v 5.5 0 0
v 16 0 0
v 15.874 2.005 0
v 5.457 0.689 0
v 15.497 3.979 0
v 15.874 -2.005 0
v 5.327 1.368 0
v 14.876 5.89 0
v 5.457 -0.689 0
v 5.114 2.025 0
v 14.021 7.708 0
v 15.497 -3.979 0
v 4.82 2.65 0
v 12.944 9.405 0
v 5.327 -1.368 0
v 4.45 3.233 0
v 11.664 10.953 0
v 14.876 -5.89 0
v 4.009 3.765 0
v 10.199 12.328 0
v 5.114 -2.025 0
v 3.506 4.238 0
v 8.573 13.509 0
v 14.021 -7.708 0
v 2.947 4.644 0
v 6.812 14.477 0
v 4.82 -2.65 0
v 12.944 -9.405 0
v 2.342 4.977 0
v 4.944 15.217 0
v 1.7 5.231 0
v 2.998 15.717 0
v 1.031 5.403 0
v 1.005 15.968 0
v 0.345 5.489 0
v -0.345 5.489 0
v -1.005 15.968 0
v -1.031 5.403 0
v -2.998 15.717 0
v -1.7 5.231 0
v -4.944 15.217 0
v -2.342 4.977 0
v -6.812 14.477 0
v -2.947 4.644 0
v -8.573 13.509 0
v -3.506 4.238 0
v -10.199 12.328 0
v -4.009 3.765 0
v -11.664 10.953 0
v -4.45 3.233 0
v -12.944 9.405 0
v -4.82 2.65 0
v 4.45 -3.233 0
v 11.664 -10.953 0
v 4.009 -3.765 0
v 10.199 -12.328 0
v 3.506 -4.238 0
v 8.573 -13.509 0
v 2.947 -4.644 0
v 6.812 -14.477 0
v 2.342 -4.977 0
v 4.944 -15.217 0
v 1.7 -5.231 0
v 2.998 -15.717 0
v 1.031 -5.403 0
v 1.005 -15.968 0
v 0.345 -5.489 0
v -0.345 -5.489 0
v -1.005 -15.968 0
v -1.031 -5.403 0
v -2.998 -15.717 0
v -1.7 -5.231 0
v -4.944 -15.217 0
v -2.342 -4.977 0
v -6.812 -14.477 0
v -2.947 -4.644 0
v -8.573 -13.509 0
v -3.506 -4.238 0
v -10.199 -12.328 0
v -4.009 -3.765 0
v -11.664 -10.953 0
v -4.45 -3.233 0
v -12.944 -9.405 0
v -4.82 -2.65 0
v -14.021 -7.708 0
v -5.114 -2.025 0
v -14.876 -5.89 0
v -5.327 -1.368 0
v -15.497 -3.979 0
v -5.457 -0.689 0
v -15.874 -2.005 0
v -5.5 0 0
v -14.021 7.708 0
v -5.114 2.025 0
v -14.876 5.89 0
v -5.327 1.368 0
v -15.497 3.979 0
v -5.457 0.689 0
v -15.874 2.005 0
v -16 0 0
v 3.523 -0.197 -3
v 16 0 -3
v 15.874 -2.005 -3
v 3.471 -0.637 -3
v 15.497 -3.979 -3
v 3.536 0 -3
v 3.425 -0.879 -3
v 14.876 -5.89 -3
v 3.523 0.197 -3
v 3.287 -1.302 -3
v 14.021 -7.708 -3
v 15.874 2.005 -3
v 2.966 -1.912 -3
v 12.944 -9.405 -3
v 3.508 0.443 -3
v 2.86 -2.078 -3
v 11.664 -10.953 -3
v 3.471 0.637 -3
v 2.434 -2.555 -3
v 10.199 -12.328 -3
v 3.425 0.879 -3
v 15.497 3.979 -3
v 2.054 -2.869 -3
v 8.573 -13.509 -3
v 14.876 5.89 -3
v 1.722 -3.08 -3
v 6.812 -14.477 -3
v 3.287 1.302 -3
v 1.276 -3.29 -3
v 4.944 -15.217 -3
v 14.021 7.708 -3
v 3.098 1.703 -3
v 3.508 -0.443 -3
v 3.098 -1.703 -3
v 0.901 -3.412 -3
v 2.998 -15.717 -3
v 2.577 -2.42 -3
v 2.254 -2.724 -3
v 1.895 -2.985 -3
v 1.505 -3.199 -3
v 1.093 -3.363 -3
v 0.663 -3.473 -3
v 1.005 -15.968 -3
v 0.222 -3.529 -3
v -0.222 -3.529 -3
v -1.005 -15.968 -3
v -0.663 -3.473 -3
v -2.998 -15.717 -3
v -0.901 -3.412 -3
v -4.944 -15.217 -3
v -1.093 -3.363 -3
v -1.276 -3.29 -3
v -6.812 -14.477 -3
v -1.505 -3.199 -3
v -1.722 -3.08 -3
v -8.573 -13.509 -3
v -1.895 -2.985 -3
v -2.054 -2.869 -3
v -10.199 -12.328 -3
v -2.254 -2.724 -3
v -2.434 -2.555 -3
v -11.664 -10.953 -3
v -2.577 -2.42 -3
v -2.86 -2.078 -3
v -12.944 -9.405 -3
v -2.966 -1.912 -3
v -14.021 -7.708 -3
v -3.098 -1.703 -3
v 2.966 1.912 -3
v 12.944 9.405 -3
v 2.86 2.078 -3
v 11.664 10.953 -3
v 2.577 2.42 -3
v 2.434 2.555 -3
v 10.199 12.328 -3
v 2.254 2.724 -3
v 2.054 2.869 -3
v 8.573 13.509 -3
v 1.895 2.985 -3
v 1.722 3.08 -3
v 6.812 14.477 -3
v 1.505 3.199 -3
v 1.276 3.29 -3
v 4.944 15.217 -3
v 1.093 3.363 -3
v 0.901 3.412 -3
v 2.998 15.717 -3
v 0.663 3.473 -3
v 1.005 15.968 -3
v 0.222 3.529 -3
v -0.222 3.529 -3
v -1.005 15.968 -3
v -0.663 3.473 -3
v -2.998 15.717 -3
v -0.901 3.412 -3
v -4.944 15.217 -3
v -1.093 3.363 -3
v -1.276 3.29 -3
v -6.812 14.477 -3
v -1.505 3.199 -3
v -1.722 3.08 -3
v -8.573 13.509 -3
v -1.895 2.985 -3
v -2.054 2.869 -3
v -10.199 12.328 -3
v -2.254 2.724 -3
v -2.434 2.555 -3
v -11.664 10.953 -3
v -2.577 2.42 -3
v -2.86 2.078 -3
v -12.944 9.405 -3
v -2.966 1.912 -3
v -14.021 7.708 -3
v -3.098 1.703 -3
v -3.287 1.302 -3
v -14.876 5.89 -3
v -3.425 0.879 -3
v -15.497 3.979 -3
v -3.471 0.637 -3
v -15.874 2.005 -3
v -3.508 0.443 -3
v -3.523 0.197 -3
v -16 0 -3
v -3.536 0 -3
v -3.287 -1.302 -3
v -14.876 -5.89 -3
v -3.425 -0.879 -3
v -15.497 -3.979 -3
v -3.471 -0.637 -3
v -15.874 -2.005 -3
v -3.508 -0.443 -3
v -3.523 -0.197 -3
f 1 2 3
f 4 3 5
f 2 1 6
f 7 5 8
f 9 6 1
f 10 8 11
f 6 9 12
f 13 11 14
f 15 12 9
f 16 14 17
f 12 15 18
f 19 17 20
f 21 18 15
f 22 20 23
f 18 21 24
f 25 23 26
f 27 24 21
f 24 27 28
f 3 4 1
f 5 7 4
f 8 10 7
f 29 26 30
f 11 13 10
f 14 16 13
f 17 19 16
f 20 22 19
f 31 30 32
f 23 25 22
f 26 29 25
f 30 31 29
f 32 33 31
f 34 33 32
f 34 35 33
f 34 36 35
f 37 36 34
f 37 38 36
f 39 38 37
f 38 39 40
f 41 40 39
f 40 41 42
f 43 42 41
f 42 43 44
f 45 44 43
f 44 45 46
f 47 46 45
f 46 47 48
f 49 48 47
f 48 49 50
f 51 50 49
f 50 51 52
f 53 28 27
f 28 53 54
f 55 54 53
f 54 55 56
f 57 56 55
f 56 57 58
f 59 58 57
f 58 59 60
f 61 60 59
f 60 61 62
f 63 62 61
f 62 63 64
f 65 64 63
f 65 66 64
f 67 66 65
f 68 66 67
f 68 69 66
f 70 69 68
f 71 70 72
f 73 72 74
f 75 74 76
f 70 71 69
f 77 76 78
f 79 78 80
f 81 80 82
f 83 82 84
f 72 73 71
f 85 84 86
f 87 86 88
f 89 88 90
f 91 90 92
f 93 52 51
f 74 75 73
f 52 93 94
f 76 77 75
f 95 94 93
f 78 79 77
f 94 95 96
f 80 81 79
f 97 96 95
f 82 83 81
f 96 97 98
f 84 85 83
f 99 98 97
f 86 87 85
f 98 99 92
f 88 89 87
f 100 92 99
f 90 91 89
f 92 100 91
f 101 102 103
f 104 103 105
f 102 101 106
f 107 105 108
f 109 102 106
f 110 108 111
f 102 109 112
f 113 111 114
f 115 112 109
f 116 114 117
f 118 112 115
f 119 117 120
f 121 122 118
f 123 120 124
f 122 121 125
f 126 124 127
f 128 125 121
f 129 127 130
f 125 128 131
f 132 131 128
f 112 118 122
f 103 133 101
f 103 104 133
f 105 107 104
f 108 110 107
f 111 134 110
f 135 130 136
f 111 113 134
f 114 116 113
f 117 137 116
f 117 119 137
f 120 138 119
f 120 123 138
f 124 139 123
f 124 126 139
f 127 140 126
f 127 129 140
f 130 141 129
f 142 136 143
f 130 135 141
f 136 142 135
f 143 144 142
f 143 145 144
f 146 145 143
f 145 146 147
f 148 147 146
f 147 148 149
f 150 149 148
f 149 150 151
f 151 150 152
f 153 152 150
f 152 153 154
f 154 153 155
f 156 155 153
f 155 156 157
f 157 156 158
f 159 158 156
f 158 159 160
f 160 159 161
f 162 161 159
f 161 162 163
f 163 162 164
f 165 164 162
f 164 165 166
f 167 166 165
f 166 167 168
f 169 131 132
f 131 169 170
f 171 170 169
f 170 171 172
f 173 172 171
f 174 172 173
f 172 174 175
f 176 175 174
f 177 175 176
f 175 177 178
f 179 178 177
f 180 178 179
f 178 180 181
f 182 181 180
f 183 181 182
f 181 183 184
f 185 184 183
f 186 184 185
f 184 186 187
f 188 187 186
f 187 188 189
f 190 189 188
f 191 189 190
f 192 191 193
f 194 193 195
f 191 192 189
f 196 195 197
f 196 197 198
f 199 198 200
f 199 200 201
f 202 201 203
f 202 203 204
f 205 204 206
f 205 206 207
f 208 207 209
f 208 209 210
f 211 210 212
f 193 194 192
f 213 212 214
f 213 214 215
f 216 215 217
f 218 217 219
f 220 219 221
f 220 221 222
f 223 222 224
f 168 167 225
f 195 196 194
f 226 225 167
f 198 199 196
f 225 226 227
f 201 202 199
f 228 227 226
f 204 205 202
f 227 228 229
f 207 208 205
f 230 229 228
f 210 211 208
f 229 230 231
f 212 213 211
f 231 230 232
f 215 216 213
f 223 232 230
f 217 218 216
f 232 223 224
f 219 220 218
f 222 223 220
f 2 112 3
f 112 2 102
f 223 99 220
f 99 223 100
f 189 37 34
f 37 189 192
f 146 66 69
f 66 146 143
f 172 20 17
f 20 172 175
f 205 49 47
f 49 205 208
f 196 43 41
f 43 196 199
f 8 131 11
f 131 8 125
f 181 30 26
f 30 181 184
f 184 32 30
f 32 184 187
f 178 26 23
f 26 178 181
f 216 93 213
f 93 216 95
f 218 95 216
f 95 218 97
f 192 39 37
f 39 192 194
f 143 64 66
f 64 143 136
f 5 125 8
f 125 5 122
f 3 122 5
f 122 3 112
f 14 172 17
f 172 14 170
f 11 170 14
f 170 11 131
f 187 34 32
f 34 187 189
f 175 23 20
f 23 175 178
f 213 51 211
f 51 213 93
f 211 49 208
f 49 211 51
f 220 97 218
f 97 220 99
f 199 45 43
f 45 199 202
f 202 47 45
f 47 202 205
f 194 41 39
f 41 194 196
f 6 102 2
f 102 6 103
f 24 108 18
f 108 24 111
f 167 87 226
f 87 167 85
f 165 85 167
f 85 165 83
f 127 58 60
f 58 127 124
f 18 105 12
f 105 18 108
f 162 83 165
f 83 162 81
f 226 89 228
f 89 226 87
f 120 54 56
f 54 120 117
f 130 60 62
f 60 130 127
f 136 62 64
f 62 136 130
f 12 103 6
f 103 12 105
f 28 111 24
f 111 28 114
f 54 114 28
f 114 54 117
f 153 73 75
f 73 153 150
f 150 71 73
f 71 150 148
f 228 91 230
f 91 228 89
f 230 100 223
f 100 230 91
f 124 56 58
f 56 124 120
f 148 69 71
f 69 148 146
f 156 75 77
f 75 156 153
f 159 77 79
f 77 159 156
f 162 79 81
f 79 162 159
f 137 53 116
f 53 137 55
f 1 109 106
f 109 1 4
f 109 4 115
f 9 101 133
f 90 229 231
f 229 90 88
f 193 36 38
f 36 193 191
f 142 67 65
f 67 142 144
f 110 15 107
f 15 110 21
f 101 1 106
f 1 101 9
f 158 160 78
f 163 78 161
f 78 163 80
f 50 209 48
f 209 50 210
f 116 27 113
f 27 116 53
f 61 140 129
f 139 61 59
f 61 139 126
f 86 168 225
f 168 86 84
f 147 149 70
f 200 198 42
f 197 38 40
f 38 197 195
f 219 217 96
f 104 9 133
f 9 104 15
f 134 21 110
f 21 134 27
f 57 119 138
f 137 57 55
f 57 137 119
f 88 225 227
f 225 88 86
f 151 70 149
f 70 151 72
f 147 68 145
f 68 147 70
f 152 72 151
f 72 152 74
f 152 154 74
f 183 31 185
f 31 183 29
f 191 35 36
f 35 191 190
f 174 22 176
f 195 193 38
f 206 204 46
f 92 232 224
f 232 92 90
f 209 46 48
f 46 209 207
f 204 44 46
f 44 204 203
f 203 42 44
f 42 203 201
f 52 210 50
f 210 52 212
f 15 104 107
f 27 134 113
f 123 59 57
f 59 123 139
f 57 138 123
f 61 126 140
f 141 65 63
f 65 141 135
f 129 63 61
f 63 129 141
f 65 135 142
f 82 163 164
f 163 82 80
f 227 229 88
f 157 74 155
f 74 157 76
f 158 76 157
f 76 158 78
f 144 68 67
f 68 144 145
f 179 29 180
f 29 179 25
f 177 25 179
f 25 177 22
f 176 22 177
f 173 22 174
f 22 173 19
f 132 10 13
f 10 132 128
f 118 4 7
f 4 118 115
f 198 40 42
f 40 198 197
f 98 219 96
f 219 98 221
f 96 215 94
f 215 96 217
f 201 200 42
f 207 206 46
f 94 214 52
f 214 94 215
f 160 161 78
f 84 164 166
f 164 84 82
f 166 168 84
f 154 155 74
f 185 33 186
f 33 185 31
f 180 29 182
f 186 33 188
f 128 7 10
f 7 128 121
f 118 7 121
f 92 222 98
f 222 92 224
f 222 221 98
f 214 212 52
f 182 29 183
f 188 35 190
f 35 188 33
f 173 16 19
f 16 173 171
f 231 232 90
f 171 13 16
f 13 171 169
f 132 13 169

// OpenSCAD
$fn = 50;


difference() {
	union() {
		translate(v = [0, 0, -3.0000000000]) {
			cylinder(h = 3, r = 10.0000000000);
		}
		translate(v = [0, 0, -3.0000000000]) {
			cylinder(h = 3, r = 16.0000000000);
		}
	}
	union() {
		translate(v = [0, 0, 0]) {
			rotate(a = [0, 0, 0]) {
				difference() {
					union() {
						#translate(v = [0, 0, -3.0000000000]) {
							cylinder(h = 3, r = 2.2500000000);
						}
						#translate(v = [0, 0, -4.2000000000]) {
							cylinder(h = 4.2000000000, r1 = 2.7500000000, r2 = 5.5000000000);
						}
						#translate(v = [0, 0, -3.0000000000]) {
							cylinder(h = 3, r = 2.7500000000);
						}
						#translate(v = [0, 0, -3.0000000000]) {
							cylinder(h = 3, r = 2.2500000000);
						}
					}
					union();
				}
			}
		}
	}
}
